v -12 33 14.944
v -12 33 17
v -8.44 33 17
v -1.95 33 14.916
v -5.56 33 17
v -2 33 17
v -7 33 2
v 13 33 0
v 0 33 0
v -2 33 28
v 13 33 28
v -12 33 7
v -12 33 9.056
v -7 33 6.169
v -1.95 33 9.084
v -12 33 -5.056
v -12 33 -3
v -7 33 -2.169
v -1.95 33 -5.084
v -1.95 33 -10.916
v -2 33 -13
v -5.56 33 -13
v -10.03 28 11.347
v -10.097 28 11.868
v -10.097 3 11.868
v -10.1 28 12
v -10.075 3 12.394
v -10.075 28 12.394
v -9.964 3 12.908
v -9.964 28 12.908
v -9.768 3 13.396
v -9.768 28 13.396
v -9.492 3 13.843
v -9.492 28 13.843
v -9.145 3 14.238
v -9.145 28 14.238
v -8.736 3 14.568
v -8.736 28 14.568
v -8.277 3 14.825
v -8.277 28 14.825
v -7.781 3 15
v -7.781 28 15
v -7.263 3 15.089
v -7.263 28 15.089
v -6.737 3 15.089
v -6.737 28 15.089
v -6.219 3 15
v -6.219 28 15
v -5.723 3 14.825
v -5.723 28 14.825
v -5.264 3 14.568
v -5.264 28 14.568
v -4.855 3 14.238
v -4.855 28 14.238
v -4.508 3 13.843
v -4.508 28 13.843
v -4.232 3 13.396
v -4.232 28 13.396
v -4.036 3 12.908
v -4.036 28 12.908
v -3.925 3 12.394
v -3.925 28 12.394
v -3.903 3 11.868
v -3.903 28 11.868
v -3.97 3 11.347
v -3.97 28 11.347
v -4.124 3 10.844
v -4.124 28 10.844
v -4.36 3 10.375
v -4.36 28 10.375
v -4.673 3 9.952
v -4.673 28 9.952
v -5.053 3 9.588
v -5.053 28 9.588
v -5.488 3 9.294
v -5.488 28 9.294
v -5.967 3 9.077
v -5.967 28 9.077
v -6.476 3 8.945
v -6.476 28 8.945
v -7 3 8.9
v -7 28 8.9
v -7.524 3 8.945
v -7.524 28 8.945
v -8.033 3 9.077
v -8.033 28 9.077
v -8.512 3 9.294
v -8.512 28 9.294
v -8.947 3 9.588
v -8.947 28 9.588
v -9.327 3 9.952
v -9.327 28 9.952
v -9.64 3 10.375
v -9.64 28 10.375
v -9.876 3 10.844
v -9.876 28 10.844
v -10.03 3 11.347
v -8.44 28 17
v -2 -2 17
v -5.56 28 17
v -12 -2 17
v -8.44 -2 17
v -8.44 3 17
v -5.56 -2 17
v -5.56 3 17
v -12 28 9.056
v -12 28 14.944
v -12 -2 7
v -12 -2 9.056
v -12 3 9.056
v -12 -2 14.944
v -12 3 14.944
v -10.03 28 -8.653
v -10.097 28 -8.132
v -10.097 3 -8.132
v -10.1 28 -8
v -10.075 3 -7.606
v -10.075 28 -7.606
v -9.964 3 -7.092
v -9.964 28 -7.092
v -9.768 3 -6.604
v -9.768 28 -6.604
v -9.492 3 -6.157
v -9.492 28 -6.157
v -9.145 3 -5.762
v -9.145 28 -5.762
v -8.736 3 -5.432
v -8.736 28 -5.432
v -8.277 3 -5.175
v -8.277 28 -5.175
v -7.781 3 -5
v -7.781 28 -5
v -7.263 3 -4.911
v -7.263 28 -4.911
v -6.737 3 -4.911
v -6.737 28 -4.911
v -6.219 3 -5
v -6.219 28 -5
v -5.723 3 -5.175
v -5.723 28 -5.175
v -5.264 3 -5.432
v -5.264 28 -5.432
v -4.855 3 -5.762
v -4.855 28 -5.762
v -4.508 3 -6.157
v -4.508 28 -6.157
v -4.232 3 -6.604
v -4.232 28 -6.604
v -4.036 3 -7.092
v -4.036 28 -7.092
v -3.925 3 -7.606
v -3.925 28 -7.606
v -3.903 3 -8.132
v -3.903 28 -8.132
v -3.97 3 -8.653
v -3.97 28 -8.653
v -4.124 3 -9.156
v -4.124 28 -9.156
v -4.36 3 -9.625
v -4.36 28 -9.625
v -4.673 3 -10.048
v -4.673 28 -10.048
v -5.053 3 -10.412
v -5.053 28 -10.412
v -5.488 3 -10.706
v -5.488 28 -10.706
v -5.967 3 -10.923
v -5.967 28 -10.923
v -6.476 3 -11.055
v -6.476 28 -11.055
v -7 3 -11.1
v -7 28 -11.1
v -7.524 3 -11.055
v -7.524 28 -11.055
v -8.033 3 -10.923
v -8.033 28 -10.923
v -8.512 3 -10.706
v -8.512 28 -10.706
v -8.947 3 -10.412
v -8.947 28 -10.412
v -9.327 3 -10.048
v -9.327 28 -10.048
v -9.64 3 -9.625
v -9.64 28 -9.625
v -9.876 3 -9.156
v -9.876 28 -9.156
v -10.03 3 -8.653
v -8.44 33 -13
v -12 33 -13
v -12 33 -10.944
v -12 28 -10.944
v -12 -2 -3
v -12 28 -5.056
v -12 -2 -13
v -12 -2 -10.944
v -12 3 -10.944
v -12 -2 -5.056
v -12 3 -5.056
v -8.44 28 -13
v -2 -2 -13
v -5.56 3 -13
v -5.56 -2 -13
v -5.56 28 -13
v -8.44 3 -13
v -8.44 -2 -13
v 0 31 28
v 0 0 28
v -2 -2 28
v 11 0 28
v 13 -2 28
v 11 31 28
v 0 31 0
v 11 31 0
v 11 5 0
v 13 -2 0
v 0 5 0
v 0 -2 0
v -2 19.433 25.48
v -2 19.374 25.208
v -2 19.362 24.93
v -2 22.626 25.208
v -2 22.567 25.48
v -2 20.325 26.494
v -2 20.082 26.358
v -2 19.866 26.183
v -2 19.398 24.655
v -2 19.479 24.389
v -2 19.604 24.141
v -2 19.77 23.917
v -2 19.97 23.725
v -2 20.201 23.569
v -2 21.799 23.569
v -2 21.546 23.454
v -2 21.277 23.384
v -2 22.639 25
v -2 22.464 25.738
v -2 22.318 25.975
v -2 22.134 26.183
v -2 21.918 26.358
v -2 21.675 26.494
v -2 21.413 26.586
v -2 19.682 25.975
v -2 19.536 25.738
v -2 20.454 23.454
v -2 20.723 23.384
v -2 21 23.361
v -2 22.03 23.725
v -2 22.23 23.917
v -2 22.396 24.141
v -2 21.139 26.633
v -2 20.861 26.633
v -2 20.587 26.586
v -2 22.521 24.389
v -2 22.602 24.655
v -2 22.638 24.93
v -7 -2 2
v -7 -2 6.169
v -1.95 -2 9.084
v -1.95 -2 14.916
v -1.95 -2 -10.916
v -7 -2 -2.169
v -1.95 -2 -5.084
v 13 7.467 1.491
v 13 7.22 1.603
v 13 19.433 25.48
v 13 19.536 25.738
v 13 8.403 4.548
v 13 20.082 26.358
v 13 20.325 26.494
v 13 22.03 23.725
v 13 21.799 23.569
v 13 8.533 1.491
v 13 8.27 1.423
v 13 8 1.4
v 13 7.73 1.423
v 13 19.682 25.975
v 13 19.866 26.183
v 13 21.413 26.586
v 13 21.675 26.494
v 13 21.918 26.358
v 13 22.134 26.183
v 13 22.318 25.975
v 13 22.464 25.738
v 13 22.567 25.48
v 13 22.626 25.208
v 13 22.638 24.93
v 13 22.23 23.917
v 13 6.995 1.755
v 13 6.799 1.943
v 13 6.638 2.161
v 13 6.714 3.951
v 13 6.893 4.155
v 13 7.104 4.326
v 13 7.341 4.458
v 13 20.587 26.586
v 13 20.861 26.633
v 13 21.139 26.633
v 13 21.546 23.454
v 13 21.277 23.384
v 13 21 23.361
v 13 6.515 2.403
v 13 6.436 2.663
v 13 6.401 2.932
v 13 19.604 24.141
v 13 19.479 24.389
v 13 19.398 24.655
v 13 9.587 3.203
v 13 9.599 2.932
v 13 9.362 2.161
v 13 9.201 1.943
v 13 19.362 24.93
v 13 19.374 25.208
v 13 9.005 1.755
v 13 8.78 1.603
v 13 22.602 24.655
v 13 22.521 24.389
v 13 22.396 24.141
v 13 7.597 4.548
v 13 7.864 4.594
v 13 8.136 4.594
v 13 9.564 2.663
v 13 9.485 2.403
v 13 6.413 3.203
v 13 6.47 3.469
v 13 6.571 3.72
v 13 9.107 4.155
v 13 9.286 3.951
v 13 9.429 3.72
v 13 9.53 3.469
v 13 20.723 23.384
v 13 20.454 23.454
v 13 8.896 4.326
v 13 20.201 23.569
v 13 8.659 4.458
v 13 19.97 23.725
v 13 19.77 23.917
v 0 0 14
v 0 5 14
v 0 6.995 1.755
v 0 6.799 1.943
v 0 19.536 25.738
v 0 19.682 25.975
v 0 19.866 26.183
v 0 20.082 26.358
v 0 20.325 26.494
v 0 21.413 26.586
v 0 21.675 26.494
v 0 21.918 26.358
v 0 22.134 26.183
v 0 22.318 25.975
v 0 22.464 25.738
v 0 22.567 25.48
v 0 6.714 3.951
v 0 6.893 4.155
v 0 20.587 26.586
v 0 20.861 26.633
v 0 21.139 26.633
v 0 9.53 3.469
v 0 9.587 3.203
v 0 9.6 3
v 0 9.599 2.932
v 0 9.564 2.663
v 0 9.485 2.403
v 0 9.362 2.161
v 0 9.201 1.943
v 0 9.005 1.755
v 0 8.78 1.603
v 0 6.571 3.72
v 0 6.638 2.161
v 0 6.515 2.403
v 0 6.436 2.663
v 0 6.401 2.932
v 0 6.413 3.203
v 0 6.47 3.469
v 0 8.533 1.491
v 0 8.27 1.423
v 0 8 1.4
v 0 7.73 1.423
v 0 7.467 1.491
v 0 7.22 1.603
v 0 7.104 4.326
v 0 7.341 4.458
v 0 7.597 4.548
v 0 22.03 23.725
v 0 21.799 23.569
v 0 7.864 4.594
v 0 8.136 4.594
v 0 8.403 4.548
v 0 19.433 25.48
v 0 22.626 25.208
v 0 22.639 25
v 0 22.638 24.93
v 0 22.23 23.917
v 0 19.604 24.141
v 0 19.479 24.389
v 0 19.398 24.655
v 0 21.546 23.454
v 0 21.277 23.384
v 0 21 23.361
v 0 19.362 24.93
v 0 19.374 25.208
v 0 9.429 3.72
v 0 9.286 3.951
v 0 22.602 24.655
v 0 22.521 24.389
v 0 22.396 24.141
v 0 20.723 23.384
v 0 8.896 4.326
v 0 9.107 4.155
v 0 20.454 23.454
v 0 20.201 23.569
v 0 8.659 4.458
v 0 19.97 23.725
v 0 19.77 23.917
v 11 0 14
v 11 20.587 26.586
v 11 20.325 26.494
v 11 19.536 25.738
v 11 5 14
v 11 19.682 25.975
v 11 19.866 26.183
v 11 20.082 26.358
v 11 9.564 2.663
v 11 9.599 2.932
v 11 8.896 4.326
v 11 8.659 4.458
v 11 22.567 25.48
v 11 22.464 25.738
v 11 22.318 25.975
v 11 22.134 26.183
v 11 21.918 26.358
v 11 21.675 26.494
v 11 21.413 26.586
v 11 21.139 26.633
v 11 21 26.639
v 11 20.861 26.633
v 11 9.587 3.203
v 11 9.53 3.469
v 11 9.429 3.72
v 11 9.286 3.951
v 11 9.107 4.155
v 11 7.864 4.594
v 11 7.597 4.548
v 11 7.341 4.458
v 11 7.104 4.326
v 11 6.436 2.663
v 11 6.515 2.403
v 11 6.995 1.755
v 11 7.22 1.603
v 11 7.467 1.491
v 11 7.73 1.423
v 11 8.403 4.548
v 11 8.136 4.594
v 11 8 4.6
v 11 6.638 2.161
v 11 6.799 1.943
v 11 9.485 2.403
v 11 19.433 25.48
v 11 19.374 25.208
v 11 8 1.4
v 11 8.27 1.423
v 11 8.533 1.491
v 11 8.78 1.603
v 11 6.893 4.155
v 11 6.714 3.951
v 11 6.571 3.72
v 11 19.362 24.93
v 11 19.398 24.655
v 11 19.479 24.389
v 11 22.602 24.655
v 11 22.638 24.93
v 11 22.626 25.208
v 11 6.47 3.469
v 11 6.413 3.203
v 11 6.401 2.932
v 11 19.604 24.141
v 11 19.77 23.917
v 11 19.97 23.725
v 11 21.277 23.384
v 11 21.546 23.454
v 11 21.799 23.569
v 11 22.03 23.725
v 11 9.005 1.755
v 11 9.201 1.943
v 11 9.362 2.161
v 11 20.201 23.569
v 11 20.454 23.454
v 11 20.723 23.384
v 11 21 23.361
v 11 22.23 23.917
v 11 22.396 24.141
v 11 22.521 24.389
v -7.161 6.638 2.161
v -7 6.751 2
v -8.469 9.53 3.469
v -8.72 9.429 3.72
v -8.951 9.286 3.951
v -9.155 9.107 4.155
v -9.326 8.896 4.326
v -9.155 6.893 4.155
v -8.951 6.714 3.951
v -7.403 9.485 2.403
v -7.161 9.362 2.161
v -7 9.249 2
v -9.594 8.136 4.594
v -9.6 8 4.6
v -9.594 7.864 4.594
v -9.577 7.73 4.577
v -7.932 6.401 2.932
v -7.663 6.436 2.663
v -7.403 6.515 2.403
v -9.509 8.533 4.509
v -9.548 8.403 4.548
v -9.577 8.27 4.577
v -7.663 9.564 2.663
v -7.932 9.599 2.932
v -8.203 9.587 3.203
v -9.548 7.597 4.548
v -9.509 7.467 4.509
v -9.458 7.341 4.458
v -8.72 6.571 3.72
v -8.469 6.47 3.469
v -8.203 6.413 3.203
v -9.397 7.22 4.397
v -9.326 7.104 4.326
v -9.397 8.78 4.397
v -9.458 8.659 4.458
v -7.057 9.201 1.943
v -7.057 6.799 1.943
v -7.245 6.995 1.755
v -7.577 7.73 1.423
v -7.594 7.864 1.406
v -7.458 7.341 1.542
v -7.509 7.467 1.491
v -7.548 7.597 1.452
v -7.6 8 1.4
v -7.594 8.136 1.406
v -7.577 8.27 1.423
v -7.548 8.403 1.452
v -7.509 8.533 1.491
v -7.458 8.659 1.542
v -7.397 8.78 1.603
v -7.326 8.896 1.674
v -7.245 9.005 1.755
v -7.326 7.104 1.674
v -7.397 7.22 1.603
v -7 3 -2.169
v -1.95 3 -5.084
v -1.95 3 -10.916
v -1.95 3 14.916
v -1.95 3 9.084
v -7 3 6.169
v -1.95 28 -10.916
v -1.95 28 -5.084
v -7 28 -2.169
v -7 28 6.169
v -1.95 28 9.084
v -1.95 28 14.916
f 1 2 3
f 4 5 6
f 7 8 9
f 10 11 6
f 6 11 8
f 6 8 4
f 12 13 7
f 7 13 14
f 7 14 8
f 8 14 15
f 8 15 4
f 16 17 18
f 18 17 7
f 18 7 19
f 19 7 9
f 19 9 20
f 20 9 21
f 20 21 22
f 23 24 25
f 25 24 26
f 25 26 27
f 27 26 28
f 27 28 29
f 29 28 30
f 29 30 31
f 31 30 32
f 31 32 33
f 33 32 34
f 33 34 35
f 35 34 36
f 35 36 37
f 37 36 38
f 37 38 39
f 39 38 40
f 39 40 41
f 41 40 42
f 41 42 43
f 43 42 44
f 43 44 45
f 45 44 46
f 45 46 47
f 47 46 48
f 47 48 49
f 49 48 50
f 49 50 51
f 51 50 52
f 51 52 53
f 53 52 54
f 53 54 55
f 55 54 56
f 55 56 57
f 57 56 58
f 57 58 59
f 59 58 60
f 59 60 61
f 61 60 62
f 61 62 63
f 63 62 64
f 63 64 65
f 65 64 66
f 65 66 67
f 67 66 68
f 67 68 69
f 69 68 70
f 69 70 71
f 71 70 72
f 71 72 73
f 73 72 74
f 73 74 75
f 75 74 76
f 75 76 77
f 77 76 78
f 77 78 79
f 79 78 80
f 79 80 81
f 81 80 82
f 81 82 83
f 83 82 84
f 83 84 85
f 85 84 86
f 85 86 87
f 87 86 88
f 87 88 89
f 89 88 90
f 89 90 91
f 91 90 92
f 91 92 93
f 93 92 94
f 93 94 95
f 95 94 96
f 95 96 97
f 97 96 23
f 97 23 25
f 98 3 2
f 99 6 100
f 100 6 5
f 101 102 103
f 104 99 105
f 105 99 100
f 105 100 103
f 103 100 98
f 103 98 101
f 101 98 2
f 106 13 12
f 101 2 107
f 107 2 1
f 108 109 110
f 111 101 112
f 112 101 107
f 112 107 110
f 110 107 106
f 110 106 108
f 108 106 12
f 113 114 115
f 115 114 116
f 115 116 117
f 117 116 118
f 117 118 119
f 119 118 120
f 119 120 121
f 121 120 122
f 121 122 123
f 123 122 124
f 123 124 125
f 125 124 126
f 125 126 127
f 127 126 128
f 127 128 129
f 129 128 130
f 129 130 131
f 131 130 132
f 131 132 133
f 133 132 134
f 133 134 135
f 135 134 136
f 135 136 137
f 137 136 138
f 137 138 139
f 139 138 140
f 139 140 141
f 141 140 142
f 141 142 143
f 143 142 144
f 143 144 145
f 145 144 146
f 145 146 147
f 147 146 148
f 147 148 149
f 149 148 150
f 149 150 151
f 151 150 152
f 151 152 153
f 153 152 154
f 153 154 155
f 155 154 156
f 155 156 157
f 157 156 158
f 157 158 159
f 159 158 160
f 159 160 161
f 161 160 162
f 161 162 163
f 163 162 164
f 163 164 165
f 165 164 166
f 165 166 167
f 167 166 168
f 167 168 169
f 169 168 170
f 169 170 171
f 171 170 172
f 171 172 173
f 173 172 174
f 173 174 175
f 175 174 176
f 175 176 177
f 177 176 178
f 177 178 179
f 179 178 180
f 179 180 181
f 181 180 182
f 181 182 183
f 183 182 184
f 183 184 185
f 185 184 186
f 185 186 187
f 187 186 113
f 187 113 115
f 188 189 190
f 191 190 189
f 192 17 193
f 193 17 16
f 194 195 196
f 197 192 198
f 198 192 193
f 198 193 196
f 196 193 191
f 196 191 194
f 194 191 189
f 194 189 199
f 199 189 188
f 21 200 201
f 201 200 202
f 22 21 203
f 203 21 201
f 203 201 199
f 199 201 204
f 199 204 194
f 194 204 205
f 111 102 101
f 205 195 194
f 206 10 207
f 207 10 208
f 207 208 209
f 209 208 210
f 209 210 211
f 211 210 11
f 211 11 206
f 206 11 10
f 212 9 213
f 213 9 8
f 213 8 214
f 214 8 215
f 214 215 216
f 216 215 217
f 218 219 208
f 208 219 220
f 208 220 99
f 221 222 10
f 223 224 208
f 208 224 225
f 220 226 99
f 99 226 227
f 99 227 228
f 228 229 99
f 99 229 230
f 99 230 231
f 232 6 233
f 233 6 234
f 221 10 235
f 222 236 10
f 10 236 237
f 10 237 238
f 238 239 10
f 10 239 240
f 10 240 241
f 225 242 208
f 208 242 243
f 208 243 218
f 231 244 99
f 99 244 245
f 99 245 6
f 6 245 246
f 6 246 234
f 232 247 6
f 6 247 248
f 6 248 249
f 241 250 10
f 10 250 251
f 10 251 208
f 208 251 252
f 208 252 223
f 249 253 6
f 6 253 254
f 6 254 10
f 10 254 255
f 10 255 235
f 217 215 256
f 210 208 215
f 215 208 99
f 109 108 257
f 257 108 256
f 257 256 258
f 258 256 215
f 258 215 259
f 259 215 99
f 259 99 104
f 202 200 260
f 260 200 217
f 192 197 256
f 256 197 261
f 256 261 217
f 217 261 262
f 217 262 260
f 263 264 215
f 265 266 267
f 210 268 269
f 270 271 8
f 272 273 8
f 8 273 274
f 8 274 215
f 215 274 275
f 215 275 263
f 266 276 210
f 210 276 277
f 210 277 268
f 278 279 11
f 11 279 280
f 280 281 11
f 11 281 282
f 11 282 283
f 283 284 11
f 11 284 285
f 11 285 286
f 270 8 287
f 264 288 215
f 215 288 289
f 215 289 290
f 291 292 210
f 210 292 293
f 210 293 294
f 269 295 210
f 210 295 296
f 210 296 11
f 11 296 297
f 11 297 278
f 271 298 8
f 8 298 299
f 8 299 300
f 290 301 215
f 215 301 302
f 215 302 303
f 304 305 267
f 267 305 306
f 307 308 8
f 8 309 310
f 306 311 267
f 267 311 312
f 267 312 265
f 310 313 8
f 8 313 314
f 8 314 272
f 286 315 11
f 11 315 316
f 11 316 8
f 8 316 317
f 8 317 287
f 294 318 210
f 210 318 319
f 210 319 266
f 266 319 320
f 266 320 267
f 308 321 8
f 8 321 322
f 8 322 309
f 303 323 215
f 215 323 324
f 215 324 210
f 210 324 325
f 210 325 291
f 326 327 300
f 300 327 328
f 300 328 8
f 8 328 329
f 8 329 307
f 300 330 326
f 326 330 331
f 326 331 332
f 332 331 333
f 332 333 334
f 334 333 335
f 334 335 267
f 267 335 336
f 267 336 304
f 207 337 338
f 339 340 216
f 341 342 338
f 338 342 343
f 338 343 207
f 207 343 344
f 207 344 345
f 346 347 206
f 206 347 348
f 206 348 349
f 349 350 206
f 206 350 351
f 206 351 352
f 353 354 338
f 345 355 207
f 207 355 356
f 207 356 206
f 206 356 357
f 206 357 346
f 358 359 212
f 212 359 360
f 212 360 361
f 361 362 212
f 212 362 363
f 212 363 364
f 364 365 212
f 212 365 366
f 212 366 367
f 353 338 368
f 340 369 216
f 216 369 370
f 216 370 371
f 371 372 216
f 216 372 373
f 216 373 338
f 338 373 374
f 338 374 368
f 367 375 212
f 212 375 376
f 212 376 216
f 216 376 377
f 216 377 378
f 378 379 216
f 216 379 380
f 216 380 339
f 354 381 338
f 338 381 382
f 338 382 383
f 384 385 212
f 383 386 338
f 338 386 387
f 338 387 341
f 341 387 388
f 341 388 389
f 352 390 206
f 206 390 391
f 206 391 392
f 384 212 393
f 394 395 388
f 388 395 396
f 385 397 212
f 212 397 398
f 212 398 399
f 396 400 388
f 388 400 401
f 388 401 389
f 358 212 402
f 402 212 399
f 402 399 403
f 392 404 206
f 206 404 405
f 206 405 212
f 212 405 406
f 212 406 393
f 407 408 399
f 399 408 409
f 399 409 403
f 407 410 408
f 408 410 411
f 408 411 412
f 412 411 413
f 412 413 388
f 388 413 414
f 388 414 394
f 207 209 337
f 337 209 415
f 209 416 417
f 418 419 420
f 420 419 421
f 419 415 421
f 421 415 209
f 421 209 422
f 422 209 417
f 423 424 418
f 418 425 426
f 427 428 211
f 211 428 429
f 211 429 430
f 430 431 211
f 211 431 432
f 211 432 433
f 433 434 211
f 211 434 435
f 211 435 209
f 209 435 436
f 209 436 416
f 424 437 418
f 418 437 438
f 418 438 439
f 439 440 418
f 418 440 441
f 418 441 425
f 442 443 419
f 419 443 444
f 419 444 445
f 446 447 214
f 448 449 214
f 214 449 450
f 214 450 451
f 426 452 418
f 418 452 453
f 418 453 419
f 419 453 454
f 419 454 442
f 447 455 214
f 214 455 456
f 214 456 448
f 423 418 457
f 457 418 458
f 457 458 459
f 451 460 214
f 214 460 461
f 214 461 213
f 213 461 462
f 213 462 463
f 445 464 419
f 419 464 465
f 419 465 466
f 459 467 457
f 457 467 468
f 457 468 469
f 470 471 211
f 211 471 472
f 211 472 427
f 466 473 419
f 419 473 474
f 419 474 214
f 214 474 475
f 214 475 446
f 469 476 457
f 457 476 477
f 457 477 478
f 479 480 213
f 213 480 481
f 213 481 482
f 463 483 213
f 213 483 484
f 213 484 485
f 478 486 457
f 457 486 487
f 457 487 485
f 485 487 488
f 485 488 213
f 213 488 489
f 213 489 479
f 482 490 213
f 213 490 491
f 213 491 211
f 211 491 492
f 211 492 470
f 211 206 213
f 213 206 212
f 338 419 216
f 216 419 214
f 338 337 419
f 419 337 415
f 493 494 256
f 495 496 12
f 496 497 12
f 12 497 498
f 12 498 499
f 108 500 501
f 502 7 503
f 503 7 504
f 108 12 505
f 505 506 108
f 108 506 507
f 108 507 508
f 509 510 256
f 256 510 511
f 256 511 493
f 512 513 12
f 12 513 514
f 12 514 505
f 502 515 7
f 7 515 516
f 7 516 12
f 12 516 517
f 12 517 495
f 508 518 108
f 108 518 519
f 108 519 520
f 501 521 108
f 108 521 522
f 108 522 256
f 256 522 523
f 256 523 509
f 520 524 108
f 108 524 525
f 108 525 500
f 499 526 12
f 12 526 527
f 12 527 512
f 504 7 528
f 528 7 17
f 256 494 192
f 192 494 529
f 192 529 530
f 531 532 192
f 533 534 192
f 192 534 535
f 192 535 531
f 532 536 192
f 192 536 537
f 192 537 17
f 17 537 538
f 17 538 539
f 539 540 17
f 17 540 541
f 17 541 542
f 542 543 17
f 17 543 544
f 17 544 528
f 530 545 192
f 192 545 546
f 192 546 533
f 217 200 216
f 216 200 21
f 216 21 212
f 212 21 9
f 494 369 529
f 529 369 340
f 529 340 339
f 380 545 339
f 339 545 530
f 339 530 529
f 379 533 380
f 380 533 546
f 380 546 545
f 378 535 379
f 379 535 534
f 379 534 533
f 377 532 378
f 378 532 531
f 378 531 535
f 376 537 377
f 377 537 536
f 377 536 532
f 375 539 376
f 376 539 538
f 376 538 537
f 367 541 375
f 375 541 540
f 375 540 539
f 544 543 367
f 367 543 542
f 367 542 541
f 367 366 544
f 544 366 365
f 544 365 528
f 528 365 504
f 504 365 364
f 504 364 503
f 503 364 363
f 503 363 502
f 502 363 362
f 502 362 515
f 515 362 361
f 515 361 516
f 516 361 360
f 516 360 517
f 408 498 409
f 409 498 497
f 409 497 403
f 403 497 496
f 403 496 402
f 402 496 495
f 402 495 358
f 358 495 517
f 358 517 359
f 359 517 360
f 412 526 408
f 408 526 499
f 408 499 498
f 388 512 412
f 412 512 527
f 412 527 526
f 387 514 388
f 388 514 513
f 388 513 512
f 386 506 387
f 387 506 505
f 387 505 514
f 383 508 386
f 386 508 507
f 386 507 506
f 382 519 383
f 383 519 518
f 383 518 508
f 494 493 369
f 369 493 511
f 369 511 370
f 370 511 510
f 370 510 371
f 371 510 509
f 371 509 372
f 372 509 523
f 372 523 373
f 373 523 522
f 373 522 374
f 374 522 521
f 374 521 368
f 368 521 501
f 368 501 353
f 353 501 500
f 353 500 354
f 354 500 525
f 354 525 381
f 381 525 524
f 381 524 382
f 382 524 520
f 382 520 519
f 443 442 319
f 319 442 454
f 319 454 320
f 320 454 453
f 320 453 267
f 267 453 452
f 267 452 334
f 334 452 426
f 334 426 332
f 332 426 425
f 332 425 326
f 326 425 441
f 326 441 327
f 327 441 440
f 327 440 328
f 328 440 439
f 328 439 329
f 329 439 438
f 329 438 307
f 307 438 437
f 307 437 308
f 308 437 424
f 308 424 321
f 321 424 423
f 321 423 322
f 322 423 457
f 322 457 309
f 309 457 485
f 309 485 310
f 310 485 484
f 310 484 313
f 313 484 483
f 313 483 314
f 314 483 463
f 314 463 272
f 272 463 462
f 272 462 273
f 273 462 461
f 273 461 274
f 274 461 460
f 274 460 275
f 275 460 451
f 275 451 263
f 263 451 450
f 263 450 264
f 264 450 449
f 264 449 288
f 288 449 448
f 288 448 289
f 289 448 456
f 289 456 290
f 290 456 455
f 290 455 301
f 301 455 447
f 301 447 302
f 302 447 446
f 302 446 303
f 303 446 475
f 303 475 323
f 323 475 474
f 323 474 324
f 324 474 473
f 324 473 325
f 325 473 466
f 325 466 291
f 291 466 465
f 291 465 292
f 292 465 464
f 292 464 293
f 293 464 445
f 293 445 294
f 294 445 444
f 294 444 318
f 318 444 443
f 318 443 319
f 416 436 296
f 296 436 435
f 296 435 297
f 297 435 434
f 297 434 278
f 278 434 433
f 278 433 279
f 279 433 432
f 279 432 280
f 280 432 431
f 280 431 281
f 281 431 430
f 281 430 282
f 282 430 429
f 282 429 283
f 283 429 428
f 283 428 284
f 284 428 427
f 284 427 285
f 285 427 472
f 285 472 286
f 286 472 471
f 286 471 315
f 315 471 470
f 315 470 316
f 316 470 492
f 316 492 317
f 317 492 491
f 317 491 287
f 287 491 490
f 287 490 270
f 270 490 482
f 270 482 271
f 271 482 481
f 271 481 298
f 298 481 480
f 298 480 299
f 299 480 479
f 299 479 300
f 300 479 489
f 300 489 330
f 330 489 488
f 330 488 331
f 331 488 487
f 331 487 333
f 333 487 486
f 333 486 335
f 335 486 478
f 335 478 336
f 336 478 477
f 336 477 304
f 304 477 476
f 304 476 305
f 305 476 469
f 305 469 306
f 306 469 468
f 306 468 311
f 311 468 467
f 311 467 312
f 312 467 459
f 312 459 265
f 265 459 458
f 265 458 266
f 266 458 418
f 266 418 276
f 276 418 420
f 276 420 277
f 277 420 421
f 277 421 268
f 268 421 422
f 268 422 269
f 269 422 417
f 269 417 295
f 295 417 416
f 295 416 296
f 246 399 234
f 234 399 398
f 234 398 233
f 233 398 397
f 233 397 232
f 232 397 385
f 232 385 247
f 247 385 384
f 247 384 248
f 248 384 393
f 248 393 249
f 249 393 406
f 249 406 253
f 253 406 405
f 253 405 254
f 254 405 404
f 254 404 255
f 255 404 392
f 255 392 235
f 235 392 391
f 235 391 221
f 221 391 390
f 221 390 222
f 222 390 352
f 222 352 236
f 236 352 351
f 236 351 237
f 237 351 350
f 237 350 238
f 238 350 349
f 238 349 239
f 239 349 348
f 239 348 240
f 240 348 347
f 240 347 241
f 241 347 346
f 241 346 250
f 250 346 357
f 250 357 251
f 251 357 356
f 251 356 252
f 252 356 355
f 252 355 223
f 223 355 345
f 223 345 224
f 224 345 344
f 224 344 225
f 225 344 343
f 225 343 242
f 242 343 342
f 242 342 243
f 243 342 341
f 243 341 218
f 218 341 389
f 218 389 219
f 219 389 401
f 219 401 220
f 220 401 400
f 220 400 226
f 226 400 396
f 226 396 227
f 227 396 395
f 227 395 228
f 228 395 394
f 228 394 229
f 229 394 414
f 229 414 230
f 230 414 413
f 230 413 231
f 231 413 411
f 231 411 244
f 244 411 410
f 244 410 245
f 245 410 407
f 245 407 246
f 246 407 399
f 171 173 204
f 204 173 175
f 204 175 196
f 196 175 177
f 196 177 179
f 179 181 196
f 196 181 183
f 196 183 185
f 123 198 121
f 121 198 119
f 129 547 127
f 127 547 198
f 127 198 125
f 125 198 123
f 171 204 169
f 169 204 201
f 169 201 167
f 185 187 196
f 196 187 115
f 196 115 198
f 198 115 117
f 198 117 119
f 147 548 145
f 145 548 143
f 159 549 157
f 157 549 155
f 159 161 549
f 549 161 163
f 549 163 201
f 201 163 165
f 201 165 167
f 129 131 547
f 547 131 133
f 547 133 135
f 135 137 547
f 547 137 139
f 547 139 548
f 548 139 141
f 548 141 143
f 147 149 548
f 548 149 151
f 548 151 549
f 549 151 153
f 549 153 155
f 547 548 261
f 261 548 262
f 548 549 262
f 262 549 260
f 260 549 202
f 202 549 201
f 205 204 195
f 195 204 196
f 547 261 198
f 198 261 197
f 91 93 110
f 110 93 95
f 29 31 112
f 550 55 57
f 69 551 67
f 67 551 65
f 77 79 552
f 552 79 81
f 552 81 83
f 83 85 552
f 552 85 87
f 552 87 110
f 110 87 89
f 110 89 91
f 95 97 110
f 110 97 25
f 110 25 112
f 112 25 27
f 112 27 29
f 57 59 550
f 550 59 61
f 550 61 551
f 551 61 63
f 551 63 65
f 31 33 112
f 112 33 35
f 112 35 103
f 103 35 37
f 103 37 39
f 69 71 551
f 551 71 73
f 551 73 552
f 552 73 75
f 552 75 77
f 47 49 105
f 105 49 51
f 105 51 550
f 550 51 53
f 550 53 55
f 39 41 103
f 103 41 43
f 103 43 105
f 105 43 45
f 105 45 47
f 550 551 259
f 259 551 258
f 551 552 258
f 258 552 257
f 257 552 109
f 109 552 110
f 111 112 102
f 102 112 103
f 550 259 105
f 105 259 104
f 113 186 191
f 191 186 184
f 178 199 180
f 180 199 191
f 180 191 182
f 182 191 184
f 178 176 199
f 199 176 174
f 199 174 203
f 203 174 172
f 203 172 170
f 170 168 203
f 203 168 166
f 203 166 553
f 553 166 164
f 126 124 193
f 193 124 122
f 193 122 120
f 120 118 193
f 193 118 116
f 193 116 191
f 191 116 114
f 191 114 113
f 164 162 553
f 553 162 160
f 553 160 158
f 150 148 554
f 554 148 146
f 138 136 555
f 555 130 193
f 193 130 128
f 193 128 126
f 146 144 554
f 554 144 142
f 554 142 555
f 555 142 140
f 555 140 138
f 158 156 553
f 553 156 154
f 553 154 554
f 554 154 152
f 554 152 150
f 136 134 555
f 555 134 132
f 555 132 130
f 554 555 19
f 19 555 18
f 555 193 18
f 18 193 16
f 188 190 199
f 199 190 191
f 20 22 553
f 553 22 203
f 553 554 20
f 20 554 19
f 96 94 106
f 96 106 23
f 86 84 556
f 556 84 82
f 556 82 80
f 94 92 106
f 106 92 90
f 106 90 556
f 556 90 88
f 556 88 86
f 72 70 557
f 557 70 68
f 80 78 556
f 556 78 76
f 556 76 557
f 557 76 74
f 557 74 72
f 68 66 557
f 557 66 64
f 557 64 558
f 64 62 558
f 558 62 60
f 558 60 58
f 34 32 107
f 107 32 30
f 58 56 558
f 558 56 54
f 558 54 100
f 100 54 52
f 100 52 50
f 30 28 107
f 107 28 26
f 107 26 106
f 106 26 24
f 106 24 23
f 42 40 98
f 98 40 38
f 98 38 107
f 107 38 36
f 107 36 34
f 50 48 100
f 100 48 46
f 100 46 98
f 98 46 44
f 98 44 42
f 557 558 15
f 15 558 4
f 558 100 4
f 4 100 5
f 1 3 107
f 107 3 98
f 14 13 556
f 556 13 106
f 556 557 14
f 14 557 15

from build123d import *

# Parameters (mm, degrees)
ESQUISSE1_W             = 15
ESQUISSE1_H             = 35
ESQUISSE1_W_2           = 11
ESQUISSE1_H_2           = 31
EXTRU_MINCE1_DEPTH      = 28
ESQUISSE2_W             = 11
ESQUISSE2_H             = 5
BOSS_EXTRU_1_DEPTH      = 14
BOSS_EXTRU_2_REACH      = 48.669
ESQUISSE8_R             = 3.1
ESQUISSE3_R             = 1.6
ESQUISSE3_R_2           = 1.639162694
ENL_V_MAT_EXTRU_1_DEPTH = 50.979995998
ENL_V_MAT_EXTRU_2_DEPTH = 5


with BuildPart() as part:
    # Esquisse1 → Extru.-Mince1 (new body)
    with BuildSketch(Plane.XY):
        with Locations((5.5, 15.5)):
            Rectangle(ESQUISSE1_W, ESQUISSE1_H)
        with Locations((5.5, 15.5)):
            Rectangle(ESQUISSE1_W_2, ESQUISSE1_H_2, mode=Mode.SUBTRACT)
    extrude(amount=EXTRU_MINCE1_DEPTH)

    # Esquisse2 → Boss.-Extru.1 (add)
    with BuildSketch(Plane(origin=(0, 0, 0), x_dir=(-1, 0, 0), z_dir=(0, 0, -1))):
        with Locations((-5.5, 2.5)):
            Rectangle(ESQUISSE2_W, ESQUISSE2_H)
    extrude(amount=-BOSS_EXTRU_1_DEPTH)

    # Boss.-Extru.2: up to this face of the body (flat: up to its plane)
    boss_extru_2_end = Plane(part.part.faces().sort_by_distance((5.5, 33, 14))[0])
    # Esquisse8 → Boss.-Extru.2 (add, up to the picked face)
    with BuildSketch(Plane.XZ.offset(2), mode=Mode.PRIVATE) as boss_extru_2_sk1:
        Polygon((-2, 17), (-12, 17), (-12, 7), (-7, 2), (-12, -3), (-12, -13), (-2, -13), (0, 0), (-2, 0), align=None)
        with Locations(Location((-7, 12, 0), (0, 0, 270))):
            Circle(ESQUISSE8_R, mode=Mode.SUBTRACT)
        with Locations(Location((-7, -8, 0), (0, 0, 270))):
            Circle(ESQUISSE8_R, mode=Mode.SUBTRACT)
    boss_extru_2_tool1 = split(extrude(boss_extru_2_sk1.sketch, amount=-BOSS_EXTRU_2_REACH, mode=Mode.PRIVATE), bisect_by=boss_extru_2_end, keep=Keep.BOTH, mode=Mode.PRIVATE)
    add(boss_extru_2_tool1.solids().sort_by(Axis((-6.31025, -2, 1.638284), (0, 1, 0)))[0])

    # Esquisse3 → Enlèv. mat.-Extru.1 (cut, through all)
    with BuildSketch(Plane(origin=(13, 0, 0), x_dir=(0, 0, -1), z_dir=(1, 0, 0))):
        with Locations(Location((-3, 8, 0), (0, 0, 51.317812547))):
            Circle(ESQUISSE3_R)
        with Locations((-25, 21)):
            Circle(ESQUISSE3_R_2)
    extrude(amount=-ENL_V_MAT_EXTRU_1_DEPTH, mode=Mode.SUBTRACT)

    # Esquisse9 → Enlèv. mat.-Extru.2 (cut)
    with BuildSketch(Plane.XZ.offset(2)):
        Polygon((-7, -2.168762281), (-12.05, -5.084381141), (-12.05, -10.915618859), (-7, -13.831237719), (-1.95, -10.915618859), (-1.95, -5.084381141), align=None)
        Polygon((-1.95, 14.915618859), (-7, 17.831237719), (-12.05, 14.915618859), (-12.05, 9.084381141), (-7, 6.168762281), (-1.95, 9.084381141), align=None)
    enl_v_mat_extru_2 = extrude(amount=-ENL_V_MAT_EXTRU_2_DEPTH, mode=Mode.SUBTRACT)

    # Symétrie1: Enlèv. mat.-Extru.2 across plane
    add(enl_v_mat_extru_2.mirror(Plane(origin=(0, 15.5, 0), x_dir=(0, 0, 1), z_dir=(0, -1, 0))), mode=Mode.SUBTRACT)


solid = part.part
